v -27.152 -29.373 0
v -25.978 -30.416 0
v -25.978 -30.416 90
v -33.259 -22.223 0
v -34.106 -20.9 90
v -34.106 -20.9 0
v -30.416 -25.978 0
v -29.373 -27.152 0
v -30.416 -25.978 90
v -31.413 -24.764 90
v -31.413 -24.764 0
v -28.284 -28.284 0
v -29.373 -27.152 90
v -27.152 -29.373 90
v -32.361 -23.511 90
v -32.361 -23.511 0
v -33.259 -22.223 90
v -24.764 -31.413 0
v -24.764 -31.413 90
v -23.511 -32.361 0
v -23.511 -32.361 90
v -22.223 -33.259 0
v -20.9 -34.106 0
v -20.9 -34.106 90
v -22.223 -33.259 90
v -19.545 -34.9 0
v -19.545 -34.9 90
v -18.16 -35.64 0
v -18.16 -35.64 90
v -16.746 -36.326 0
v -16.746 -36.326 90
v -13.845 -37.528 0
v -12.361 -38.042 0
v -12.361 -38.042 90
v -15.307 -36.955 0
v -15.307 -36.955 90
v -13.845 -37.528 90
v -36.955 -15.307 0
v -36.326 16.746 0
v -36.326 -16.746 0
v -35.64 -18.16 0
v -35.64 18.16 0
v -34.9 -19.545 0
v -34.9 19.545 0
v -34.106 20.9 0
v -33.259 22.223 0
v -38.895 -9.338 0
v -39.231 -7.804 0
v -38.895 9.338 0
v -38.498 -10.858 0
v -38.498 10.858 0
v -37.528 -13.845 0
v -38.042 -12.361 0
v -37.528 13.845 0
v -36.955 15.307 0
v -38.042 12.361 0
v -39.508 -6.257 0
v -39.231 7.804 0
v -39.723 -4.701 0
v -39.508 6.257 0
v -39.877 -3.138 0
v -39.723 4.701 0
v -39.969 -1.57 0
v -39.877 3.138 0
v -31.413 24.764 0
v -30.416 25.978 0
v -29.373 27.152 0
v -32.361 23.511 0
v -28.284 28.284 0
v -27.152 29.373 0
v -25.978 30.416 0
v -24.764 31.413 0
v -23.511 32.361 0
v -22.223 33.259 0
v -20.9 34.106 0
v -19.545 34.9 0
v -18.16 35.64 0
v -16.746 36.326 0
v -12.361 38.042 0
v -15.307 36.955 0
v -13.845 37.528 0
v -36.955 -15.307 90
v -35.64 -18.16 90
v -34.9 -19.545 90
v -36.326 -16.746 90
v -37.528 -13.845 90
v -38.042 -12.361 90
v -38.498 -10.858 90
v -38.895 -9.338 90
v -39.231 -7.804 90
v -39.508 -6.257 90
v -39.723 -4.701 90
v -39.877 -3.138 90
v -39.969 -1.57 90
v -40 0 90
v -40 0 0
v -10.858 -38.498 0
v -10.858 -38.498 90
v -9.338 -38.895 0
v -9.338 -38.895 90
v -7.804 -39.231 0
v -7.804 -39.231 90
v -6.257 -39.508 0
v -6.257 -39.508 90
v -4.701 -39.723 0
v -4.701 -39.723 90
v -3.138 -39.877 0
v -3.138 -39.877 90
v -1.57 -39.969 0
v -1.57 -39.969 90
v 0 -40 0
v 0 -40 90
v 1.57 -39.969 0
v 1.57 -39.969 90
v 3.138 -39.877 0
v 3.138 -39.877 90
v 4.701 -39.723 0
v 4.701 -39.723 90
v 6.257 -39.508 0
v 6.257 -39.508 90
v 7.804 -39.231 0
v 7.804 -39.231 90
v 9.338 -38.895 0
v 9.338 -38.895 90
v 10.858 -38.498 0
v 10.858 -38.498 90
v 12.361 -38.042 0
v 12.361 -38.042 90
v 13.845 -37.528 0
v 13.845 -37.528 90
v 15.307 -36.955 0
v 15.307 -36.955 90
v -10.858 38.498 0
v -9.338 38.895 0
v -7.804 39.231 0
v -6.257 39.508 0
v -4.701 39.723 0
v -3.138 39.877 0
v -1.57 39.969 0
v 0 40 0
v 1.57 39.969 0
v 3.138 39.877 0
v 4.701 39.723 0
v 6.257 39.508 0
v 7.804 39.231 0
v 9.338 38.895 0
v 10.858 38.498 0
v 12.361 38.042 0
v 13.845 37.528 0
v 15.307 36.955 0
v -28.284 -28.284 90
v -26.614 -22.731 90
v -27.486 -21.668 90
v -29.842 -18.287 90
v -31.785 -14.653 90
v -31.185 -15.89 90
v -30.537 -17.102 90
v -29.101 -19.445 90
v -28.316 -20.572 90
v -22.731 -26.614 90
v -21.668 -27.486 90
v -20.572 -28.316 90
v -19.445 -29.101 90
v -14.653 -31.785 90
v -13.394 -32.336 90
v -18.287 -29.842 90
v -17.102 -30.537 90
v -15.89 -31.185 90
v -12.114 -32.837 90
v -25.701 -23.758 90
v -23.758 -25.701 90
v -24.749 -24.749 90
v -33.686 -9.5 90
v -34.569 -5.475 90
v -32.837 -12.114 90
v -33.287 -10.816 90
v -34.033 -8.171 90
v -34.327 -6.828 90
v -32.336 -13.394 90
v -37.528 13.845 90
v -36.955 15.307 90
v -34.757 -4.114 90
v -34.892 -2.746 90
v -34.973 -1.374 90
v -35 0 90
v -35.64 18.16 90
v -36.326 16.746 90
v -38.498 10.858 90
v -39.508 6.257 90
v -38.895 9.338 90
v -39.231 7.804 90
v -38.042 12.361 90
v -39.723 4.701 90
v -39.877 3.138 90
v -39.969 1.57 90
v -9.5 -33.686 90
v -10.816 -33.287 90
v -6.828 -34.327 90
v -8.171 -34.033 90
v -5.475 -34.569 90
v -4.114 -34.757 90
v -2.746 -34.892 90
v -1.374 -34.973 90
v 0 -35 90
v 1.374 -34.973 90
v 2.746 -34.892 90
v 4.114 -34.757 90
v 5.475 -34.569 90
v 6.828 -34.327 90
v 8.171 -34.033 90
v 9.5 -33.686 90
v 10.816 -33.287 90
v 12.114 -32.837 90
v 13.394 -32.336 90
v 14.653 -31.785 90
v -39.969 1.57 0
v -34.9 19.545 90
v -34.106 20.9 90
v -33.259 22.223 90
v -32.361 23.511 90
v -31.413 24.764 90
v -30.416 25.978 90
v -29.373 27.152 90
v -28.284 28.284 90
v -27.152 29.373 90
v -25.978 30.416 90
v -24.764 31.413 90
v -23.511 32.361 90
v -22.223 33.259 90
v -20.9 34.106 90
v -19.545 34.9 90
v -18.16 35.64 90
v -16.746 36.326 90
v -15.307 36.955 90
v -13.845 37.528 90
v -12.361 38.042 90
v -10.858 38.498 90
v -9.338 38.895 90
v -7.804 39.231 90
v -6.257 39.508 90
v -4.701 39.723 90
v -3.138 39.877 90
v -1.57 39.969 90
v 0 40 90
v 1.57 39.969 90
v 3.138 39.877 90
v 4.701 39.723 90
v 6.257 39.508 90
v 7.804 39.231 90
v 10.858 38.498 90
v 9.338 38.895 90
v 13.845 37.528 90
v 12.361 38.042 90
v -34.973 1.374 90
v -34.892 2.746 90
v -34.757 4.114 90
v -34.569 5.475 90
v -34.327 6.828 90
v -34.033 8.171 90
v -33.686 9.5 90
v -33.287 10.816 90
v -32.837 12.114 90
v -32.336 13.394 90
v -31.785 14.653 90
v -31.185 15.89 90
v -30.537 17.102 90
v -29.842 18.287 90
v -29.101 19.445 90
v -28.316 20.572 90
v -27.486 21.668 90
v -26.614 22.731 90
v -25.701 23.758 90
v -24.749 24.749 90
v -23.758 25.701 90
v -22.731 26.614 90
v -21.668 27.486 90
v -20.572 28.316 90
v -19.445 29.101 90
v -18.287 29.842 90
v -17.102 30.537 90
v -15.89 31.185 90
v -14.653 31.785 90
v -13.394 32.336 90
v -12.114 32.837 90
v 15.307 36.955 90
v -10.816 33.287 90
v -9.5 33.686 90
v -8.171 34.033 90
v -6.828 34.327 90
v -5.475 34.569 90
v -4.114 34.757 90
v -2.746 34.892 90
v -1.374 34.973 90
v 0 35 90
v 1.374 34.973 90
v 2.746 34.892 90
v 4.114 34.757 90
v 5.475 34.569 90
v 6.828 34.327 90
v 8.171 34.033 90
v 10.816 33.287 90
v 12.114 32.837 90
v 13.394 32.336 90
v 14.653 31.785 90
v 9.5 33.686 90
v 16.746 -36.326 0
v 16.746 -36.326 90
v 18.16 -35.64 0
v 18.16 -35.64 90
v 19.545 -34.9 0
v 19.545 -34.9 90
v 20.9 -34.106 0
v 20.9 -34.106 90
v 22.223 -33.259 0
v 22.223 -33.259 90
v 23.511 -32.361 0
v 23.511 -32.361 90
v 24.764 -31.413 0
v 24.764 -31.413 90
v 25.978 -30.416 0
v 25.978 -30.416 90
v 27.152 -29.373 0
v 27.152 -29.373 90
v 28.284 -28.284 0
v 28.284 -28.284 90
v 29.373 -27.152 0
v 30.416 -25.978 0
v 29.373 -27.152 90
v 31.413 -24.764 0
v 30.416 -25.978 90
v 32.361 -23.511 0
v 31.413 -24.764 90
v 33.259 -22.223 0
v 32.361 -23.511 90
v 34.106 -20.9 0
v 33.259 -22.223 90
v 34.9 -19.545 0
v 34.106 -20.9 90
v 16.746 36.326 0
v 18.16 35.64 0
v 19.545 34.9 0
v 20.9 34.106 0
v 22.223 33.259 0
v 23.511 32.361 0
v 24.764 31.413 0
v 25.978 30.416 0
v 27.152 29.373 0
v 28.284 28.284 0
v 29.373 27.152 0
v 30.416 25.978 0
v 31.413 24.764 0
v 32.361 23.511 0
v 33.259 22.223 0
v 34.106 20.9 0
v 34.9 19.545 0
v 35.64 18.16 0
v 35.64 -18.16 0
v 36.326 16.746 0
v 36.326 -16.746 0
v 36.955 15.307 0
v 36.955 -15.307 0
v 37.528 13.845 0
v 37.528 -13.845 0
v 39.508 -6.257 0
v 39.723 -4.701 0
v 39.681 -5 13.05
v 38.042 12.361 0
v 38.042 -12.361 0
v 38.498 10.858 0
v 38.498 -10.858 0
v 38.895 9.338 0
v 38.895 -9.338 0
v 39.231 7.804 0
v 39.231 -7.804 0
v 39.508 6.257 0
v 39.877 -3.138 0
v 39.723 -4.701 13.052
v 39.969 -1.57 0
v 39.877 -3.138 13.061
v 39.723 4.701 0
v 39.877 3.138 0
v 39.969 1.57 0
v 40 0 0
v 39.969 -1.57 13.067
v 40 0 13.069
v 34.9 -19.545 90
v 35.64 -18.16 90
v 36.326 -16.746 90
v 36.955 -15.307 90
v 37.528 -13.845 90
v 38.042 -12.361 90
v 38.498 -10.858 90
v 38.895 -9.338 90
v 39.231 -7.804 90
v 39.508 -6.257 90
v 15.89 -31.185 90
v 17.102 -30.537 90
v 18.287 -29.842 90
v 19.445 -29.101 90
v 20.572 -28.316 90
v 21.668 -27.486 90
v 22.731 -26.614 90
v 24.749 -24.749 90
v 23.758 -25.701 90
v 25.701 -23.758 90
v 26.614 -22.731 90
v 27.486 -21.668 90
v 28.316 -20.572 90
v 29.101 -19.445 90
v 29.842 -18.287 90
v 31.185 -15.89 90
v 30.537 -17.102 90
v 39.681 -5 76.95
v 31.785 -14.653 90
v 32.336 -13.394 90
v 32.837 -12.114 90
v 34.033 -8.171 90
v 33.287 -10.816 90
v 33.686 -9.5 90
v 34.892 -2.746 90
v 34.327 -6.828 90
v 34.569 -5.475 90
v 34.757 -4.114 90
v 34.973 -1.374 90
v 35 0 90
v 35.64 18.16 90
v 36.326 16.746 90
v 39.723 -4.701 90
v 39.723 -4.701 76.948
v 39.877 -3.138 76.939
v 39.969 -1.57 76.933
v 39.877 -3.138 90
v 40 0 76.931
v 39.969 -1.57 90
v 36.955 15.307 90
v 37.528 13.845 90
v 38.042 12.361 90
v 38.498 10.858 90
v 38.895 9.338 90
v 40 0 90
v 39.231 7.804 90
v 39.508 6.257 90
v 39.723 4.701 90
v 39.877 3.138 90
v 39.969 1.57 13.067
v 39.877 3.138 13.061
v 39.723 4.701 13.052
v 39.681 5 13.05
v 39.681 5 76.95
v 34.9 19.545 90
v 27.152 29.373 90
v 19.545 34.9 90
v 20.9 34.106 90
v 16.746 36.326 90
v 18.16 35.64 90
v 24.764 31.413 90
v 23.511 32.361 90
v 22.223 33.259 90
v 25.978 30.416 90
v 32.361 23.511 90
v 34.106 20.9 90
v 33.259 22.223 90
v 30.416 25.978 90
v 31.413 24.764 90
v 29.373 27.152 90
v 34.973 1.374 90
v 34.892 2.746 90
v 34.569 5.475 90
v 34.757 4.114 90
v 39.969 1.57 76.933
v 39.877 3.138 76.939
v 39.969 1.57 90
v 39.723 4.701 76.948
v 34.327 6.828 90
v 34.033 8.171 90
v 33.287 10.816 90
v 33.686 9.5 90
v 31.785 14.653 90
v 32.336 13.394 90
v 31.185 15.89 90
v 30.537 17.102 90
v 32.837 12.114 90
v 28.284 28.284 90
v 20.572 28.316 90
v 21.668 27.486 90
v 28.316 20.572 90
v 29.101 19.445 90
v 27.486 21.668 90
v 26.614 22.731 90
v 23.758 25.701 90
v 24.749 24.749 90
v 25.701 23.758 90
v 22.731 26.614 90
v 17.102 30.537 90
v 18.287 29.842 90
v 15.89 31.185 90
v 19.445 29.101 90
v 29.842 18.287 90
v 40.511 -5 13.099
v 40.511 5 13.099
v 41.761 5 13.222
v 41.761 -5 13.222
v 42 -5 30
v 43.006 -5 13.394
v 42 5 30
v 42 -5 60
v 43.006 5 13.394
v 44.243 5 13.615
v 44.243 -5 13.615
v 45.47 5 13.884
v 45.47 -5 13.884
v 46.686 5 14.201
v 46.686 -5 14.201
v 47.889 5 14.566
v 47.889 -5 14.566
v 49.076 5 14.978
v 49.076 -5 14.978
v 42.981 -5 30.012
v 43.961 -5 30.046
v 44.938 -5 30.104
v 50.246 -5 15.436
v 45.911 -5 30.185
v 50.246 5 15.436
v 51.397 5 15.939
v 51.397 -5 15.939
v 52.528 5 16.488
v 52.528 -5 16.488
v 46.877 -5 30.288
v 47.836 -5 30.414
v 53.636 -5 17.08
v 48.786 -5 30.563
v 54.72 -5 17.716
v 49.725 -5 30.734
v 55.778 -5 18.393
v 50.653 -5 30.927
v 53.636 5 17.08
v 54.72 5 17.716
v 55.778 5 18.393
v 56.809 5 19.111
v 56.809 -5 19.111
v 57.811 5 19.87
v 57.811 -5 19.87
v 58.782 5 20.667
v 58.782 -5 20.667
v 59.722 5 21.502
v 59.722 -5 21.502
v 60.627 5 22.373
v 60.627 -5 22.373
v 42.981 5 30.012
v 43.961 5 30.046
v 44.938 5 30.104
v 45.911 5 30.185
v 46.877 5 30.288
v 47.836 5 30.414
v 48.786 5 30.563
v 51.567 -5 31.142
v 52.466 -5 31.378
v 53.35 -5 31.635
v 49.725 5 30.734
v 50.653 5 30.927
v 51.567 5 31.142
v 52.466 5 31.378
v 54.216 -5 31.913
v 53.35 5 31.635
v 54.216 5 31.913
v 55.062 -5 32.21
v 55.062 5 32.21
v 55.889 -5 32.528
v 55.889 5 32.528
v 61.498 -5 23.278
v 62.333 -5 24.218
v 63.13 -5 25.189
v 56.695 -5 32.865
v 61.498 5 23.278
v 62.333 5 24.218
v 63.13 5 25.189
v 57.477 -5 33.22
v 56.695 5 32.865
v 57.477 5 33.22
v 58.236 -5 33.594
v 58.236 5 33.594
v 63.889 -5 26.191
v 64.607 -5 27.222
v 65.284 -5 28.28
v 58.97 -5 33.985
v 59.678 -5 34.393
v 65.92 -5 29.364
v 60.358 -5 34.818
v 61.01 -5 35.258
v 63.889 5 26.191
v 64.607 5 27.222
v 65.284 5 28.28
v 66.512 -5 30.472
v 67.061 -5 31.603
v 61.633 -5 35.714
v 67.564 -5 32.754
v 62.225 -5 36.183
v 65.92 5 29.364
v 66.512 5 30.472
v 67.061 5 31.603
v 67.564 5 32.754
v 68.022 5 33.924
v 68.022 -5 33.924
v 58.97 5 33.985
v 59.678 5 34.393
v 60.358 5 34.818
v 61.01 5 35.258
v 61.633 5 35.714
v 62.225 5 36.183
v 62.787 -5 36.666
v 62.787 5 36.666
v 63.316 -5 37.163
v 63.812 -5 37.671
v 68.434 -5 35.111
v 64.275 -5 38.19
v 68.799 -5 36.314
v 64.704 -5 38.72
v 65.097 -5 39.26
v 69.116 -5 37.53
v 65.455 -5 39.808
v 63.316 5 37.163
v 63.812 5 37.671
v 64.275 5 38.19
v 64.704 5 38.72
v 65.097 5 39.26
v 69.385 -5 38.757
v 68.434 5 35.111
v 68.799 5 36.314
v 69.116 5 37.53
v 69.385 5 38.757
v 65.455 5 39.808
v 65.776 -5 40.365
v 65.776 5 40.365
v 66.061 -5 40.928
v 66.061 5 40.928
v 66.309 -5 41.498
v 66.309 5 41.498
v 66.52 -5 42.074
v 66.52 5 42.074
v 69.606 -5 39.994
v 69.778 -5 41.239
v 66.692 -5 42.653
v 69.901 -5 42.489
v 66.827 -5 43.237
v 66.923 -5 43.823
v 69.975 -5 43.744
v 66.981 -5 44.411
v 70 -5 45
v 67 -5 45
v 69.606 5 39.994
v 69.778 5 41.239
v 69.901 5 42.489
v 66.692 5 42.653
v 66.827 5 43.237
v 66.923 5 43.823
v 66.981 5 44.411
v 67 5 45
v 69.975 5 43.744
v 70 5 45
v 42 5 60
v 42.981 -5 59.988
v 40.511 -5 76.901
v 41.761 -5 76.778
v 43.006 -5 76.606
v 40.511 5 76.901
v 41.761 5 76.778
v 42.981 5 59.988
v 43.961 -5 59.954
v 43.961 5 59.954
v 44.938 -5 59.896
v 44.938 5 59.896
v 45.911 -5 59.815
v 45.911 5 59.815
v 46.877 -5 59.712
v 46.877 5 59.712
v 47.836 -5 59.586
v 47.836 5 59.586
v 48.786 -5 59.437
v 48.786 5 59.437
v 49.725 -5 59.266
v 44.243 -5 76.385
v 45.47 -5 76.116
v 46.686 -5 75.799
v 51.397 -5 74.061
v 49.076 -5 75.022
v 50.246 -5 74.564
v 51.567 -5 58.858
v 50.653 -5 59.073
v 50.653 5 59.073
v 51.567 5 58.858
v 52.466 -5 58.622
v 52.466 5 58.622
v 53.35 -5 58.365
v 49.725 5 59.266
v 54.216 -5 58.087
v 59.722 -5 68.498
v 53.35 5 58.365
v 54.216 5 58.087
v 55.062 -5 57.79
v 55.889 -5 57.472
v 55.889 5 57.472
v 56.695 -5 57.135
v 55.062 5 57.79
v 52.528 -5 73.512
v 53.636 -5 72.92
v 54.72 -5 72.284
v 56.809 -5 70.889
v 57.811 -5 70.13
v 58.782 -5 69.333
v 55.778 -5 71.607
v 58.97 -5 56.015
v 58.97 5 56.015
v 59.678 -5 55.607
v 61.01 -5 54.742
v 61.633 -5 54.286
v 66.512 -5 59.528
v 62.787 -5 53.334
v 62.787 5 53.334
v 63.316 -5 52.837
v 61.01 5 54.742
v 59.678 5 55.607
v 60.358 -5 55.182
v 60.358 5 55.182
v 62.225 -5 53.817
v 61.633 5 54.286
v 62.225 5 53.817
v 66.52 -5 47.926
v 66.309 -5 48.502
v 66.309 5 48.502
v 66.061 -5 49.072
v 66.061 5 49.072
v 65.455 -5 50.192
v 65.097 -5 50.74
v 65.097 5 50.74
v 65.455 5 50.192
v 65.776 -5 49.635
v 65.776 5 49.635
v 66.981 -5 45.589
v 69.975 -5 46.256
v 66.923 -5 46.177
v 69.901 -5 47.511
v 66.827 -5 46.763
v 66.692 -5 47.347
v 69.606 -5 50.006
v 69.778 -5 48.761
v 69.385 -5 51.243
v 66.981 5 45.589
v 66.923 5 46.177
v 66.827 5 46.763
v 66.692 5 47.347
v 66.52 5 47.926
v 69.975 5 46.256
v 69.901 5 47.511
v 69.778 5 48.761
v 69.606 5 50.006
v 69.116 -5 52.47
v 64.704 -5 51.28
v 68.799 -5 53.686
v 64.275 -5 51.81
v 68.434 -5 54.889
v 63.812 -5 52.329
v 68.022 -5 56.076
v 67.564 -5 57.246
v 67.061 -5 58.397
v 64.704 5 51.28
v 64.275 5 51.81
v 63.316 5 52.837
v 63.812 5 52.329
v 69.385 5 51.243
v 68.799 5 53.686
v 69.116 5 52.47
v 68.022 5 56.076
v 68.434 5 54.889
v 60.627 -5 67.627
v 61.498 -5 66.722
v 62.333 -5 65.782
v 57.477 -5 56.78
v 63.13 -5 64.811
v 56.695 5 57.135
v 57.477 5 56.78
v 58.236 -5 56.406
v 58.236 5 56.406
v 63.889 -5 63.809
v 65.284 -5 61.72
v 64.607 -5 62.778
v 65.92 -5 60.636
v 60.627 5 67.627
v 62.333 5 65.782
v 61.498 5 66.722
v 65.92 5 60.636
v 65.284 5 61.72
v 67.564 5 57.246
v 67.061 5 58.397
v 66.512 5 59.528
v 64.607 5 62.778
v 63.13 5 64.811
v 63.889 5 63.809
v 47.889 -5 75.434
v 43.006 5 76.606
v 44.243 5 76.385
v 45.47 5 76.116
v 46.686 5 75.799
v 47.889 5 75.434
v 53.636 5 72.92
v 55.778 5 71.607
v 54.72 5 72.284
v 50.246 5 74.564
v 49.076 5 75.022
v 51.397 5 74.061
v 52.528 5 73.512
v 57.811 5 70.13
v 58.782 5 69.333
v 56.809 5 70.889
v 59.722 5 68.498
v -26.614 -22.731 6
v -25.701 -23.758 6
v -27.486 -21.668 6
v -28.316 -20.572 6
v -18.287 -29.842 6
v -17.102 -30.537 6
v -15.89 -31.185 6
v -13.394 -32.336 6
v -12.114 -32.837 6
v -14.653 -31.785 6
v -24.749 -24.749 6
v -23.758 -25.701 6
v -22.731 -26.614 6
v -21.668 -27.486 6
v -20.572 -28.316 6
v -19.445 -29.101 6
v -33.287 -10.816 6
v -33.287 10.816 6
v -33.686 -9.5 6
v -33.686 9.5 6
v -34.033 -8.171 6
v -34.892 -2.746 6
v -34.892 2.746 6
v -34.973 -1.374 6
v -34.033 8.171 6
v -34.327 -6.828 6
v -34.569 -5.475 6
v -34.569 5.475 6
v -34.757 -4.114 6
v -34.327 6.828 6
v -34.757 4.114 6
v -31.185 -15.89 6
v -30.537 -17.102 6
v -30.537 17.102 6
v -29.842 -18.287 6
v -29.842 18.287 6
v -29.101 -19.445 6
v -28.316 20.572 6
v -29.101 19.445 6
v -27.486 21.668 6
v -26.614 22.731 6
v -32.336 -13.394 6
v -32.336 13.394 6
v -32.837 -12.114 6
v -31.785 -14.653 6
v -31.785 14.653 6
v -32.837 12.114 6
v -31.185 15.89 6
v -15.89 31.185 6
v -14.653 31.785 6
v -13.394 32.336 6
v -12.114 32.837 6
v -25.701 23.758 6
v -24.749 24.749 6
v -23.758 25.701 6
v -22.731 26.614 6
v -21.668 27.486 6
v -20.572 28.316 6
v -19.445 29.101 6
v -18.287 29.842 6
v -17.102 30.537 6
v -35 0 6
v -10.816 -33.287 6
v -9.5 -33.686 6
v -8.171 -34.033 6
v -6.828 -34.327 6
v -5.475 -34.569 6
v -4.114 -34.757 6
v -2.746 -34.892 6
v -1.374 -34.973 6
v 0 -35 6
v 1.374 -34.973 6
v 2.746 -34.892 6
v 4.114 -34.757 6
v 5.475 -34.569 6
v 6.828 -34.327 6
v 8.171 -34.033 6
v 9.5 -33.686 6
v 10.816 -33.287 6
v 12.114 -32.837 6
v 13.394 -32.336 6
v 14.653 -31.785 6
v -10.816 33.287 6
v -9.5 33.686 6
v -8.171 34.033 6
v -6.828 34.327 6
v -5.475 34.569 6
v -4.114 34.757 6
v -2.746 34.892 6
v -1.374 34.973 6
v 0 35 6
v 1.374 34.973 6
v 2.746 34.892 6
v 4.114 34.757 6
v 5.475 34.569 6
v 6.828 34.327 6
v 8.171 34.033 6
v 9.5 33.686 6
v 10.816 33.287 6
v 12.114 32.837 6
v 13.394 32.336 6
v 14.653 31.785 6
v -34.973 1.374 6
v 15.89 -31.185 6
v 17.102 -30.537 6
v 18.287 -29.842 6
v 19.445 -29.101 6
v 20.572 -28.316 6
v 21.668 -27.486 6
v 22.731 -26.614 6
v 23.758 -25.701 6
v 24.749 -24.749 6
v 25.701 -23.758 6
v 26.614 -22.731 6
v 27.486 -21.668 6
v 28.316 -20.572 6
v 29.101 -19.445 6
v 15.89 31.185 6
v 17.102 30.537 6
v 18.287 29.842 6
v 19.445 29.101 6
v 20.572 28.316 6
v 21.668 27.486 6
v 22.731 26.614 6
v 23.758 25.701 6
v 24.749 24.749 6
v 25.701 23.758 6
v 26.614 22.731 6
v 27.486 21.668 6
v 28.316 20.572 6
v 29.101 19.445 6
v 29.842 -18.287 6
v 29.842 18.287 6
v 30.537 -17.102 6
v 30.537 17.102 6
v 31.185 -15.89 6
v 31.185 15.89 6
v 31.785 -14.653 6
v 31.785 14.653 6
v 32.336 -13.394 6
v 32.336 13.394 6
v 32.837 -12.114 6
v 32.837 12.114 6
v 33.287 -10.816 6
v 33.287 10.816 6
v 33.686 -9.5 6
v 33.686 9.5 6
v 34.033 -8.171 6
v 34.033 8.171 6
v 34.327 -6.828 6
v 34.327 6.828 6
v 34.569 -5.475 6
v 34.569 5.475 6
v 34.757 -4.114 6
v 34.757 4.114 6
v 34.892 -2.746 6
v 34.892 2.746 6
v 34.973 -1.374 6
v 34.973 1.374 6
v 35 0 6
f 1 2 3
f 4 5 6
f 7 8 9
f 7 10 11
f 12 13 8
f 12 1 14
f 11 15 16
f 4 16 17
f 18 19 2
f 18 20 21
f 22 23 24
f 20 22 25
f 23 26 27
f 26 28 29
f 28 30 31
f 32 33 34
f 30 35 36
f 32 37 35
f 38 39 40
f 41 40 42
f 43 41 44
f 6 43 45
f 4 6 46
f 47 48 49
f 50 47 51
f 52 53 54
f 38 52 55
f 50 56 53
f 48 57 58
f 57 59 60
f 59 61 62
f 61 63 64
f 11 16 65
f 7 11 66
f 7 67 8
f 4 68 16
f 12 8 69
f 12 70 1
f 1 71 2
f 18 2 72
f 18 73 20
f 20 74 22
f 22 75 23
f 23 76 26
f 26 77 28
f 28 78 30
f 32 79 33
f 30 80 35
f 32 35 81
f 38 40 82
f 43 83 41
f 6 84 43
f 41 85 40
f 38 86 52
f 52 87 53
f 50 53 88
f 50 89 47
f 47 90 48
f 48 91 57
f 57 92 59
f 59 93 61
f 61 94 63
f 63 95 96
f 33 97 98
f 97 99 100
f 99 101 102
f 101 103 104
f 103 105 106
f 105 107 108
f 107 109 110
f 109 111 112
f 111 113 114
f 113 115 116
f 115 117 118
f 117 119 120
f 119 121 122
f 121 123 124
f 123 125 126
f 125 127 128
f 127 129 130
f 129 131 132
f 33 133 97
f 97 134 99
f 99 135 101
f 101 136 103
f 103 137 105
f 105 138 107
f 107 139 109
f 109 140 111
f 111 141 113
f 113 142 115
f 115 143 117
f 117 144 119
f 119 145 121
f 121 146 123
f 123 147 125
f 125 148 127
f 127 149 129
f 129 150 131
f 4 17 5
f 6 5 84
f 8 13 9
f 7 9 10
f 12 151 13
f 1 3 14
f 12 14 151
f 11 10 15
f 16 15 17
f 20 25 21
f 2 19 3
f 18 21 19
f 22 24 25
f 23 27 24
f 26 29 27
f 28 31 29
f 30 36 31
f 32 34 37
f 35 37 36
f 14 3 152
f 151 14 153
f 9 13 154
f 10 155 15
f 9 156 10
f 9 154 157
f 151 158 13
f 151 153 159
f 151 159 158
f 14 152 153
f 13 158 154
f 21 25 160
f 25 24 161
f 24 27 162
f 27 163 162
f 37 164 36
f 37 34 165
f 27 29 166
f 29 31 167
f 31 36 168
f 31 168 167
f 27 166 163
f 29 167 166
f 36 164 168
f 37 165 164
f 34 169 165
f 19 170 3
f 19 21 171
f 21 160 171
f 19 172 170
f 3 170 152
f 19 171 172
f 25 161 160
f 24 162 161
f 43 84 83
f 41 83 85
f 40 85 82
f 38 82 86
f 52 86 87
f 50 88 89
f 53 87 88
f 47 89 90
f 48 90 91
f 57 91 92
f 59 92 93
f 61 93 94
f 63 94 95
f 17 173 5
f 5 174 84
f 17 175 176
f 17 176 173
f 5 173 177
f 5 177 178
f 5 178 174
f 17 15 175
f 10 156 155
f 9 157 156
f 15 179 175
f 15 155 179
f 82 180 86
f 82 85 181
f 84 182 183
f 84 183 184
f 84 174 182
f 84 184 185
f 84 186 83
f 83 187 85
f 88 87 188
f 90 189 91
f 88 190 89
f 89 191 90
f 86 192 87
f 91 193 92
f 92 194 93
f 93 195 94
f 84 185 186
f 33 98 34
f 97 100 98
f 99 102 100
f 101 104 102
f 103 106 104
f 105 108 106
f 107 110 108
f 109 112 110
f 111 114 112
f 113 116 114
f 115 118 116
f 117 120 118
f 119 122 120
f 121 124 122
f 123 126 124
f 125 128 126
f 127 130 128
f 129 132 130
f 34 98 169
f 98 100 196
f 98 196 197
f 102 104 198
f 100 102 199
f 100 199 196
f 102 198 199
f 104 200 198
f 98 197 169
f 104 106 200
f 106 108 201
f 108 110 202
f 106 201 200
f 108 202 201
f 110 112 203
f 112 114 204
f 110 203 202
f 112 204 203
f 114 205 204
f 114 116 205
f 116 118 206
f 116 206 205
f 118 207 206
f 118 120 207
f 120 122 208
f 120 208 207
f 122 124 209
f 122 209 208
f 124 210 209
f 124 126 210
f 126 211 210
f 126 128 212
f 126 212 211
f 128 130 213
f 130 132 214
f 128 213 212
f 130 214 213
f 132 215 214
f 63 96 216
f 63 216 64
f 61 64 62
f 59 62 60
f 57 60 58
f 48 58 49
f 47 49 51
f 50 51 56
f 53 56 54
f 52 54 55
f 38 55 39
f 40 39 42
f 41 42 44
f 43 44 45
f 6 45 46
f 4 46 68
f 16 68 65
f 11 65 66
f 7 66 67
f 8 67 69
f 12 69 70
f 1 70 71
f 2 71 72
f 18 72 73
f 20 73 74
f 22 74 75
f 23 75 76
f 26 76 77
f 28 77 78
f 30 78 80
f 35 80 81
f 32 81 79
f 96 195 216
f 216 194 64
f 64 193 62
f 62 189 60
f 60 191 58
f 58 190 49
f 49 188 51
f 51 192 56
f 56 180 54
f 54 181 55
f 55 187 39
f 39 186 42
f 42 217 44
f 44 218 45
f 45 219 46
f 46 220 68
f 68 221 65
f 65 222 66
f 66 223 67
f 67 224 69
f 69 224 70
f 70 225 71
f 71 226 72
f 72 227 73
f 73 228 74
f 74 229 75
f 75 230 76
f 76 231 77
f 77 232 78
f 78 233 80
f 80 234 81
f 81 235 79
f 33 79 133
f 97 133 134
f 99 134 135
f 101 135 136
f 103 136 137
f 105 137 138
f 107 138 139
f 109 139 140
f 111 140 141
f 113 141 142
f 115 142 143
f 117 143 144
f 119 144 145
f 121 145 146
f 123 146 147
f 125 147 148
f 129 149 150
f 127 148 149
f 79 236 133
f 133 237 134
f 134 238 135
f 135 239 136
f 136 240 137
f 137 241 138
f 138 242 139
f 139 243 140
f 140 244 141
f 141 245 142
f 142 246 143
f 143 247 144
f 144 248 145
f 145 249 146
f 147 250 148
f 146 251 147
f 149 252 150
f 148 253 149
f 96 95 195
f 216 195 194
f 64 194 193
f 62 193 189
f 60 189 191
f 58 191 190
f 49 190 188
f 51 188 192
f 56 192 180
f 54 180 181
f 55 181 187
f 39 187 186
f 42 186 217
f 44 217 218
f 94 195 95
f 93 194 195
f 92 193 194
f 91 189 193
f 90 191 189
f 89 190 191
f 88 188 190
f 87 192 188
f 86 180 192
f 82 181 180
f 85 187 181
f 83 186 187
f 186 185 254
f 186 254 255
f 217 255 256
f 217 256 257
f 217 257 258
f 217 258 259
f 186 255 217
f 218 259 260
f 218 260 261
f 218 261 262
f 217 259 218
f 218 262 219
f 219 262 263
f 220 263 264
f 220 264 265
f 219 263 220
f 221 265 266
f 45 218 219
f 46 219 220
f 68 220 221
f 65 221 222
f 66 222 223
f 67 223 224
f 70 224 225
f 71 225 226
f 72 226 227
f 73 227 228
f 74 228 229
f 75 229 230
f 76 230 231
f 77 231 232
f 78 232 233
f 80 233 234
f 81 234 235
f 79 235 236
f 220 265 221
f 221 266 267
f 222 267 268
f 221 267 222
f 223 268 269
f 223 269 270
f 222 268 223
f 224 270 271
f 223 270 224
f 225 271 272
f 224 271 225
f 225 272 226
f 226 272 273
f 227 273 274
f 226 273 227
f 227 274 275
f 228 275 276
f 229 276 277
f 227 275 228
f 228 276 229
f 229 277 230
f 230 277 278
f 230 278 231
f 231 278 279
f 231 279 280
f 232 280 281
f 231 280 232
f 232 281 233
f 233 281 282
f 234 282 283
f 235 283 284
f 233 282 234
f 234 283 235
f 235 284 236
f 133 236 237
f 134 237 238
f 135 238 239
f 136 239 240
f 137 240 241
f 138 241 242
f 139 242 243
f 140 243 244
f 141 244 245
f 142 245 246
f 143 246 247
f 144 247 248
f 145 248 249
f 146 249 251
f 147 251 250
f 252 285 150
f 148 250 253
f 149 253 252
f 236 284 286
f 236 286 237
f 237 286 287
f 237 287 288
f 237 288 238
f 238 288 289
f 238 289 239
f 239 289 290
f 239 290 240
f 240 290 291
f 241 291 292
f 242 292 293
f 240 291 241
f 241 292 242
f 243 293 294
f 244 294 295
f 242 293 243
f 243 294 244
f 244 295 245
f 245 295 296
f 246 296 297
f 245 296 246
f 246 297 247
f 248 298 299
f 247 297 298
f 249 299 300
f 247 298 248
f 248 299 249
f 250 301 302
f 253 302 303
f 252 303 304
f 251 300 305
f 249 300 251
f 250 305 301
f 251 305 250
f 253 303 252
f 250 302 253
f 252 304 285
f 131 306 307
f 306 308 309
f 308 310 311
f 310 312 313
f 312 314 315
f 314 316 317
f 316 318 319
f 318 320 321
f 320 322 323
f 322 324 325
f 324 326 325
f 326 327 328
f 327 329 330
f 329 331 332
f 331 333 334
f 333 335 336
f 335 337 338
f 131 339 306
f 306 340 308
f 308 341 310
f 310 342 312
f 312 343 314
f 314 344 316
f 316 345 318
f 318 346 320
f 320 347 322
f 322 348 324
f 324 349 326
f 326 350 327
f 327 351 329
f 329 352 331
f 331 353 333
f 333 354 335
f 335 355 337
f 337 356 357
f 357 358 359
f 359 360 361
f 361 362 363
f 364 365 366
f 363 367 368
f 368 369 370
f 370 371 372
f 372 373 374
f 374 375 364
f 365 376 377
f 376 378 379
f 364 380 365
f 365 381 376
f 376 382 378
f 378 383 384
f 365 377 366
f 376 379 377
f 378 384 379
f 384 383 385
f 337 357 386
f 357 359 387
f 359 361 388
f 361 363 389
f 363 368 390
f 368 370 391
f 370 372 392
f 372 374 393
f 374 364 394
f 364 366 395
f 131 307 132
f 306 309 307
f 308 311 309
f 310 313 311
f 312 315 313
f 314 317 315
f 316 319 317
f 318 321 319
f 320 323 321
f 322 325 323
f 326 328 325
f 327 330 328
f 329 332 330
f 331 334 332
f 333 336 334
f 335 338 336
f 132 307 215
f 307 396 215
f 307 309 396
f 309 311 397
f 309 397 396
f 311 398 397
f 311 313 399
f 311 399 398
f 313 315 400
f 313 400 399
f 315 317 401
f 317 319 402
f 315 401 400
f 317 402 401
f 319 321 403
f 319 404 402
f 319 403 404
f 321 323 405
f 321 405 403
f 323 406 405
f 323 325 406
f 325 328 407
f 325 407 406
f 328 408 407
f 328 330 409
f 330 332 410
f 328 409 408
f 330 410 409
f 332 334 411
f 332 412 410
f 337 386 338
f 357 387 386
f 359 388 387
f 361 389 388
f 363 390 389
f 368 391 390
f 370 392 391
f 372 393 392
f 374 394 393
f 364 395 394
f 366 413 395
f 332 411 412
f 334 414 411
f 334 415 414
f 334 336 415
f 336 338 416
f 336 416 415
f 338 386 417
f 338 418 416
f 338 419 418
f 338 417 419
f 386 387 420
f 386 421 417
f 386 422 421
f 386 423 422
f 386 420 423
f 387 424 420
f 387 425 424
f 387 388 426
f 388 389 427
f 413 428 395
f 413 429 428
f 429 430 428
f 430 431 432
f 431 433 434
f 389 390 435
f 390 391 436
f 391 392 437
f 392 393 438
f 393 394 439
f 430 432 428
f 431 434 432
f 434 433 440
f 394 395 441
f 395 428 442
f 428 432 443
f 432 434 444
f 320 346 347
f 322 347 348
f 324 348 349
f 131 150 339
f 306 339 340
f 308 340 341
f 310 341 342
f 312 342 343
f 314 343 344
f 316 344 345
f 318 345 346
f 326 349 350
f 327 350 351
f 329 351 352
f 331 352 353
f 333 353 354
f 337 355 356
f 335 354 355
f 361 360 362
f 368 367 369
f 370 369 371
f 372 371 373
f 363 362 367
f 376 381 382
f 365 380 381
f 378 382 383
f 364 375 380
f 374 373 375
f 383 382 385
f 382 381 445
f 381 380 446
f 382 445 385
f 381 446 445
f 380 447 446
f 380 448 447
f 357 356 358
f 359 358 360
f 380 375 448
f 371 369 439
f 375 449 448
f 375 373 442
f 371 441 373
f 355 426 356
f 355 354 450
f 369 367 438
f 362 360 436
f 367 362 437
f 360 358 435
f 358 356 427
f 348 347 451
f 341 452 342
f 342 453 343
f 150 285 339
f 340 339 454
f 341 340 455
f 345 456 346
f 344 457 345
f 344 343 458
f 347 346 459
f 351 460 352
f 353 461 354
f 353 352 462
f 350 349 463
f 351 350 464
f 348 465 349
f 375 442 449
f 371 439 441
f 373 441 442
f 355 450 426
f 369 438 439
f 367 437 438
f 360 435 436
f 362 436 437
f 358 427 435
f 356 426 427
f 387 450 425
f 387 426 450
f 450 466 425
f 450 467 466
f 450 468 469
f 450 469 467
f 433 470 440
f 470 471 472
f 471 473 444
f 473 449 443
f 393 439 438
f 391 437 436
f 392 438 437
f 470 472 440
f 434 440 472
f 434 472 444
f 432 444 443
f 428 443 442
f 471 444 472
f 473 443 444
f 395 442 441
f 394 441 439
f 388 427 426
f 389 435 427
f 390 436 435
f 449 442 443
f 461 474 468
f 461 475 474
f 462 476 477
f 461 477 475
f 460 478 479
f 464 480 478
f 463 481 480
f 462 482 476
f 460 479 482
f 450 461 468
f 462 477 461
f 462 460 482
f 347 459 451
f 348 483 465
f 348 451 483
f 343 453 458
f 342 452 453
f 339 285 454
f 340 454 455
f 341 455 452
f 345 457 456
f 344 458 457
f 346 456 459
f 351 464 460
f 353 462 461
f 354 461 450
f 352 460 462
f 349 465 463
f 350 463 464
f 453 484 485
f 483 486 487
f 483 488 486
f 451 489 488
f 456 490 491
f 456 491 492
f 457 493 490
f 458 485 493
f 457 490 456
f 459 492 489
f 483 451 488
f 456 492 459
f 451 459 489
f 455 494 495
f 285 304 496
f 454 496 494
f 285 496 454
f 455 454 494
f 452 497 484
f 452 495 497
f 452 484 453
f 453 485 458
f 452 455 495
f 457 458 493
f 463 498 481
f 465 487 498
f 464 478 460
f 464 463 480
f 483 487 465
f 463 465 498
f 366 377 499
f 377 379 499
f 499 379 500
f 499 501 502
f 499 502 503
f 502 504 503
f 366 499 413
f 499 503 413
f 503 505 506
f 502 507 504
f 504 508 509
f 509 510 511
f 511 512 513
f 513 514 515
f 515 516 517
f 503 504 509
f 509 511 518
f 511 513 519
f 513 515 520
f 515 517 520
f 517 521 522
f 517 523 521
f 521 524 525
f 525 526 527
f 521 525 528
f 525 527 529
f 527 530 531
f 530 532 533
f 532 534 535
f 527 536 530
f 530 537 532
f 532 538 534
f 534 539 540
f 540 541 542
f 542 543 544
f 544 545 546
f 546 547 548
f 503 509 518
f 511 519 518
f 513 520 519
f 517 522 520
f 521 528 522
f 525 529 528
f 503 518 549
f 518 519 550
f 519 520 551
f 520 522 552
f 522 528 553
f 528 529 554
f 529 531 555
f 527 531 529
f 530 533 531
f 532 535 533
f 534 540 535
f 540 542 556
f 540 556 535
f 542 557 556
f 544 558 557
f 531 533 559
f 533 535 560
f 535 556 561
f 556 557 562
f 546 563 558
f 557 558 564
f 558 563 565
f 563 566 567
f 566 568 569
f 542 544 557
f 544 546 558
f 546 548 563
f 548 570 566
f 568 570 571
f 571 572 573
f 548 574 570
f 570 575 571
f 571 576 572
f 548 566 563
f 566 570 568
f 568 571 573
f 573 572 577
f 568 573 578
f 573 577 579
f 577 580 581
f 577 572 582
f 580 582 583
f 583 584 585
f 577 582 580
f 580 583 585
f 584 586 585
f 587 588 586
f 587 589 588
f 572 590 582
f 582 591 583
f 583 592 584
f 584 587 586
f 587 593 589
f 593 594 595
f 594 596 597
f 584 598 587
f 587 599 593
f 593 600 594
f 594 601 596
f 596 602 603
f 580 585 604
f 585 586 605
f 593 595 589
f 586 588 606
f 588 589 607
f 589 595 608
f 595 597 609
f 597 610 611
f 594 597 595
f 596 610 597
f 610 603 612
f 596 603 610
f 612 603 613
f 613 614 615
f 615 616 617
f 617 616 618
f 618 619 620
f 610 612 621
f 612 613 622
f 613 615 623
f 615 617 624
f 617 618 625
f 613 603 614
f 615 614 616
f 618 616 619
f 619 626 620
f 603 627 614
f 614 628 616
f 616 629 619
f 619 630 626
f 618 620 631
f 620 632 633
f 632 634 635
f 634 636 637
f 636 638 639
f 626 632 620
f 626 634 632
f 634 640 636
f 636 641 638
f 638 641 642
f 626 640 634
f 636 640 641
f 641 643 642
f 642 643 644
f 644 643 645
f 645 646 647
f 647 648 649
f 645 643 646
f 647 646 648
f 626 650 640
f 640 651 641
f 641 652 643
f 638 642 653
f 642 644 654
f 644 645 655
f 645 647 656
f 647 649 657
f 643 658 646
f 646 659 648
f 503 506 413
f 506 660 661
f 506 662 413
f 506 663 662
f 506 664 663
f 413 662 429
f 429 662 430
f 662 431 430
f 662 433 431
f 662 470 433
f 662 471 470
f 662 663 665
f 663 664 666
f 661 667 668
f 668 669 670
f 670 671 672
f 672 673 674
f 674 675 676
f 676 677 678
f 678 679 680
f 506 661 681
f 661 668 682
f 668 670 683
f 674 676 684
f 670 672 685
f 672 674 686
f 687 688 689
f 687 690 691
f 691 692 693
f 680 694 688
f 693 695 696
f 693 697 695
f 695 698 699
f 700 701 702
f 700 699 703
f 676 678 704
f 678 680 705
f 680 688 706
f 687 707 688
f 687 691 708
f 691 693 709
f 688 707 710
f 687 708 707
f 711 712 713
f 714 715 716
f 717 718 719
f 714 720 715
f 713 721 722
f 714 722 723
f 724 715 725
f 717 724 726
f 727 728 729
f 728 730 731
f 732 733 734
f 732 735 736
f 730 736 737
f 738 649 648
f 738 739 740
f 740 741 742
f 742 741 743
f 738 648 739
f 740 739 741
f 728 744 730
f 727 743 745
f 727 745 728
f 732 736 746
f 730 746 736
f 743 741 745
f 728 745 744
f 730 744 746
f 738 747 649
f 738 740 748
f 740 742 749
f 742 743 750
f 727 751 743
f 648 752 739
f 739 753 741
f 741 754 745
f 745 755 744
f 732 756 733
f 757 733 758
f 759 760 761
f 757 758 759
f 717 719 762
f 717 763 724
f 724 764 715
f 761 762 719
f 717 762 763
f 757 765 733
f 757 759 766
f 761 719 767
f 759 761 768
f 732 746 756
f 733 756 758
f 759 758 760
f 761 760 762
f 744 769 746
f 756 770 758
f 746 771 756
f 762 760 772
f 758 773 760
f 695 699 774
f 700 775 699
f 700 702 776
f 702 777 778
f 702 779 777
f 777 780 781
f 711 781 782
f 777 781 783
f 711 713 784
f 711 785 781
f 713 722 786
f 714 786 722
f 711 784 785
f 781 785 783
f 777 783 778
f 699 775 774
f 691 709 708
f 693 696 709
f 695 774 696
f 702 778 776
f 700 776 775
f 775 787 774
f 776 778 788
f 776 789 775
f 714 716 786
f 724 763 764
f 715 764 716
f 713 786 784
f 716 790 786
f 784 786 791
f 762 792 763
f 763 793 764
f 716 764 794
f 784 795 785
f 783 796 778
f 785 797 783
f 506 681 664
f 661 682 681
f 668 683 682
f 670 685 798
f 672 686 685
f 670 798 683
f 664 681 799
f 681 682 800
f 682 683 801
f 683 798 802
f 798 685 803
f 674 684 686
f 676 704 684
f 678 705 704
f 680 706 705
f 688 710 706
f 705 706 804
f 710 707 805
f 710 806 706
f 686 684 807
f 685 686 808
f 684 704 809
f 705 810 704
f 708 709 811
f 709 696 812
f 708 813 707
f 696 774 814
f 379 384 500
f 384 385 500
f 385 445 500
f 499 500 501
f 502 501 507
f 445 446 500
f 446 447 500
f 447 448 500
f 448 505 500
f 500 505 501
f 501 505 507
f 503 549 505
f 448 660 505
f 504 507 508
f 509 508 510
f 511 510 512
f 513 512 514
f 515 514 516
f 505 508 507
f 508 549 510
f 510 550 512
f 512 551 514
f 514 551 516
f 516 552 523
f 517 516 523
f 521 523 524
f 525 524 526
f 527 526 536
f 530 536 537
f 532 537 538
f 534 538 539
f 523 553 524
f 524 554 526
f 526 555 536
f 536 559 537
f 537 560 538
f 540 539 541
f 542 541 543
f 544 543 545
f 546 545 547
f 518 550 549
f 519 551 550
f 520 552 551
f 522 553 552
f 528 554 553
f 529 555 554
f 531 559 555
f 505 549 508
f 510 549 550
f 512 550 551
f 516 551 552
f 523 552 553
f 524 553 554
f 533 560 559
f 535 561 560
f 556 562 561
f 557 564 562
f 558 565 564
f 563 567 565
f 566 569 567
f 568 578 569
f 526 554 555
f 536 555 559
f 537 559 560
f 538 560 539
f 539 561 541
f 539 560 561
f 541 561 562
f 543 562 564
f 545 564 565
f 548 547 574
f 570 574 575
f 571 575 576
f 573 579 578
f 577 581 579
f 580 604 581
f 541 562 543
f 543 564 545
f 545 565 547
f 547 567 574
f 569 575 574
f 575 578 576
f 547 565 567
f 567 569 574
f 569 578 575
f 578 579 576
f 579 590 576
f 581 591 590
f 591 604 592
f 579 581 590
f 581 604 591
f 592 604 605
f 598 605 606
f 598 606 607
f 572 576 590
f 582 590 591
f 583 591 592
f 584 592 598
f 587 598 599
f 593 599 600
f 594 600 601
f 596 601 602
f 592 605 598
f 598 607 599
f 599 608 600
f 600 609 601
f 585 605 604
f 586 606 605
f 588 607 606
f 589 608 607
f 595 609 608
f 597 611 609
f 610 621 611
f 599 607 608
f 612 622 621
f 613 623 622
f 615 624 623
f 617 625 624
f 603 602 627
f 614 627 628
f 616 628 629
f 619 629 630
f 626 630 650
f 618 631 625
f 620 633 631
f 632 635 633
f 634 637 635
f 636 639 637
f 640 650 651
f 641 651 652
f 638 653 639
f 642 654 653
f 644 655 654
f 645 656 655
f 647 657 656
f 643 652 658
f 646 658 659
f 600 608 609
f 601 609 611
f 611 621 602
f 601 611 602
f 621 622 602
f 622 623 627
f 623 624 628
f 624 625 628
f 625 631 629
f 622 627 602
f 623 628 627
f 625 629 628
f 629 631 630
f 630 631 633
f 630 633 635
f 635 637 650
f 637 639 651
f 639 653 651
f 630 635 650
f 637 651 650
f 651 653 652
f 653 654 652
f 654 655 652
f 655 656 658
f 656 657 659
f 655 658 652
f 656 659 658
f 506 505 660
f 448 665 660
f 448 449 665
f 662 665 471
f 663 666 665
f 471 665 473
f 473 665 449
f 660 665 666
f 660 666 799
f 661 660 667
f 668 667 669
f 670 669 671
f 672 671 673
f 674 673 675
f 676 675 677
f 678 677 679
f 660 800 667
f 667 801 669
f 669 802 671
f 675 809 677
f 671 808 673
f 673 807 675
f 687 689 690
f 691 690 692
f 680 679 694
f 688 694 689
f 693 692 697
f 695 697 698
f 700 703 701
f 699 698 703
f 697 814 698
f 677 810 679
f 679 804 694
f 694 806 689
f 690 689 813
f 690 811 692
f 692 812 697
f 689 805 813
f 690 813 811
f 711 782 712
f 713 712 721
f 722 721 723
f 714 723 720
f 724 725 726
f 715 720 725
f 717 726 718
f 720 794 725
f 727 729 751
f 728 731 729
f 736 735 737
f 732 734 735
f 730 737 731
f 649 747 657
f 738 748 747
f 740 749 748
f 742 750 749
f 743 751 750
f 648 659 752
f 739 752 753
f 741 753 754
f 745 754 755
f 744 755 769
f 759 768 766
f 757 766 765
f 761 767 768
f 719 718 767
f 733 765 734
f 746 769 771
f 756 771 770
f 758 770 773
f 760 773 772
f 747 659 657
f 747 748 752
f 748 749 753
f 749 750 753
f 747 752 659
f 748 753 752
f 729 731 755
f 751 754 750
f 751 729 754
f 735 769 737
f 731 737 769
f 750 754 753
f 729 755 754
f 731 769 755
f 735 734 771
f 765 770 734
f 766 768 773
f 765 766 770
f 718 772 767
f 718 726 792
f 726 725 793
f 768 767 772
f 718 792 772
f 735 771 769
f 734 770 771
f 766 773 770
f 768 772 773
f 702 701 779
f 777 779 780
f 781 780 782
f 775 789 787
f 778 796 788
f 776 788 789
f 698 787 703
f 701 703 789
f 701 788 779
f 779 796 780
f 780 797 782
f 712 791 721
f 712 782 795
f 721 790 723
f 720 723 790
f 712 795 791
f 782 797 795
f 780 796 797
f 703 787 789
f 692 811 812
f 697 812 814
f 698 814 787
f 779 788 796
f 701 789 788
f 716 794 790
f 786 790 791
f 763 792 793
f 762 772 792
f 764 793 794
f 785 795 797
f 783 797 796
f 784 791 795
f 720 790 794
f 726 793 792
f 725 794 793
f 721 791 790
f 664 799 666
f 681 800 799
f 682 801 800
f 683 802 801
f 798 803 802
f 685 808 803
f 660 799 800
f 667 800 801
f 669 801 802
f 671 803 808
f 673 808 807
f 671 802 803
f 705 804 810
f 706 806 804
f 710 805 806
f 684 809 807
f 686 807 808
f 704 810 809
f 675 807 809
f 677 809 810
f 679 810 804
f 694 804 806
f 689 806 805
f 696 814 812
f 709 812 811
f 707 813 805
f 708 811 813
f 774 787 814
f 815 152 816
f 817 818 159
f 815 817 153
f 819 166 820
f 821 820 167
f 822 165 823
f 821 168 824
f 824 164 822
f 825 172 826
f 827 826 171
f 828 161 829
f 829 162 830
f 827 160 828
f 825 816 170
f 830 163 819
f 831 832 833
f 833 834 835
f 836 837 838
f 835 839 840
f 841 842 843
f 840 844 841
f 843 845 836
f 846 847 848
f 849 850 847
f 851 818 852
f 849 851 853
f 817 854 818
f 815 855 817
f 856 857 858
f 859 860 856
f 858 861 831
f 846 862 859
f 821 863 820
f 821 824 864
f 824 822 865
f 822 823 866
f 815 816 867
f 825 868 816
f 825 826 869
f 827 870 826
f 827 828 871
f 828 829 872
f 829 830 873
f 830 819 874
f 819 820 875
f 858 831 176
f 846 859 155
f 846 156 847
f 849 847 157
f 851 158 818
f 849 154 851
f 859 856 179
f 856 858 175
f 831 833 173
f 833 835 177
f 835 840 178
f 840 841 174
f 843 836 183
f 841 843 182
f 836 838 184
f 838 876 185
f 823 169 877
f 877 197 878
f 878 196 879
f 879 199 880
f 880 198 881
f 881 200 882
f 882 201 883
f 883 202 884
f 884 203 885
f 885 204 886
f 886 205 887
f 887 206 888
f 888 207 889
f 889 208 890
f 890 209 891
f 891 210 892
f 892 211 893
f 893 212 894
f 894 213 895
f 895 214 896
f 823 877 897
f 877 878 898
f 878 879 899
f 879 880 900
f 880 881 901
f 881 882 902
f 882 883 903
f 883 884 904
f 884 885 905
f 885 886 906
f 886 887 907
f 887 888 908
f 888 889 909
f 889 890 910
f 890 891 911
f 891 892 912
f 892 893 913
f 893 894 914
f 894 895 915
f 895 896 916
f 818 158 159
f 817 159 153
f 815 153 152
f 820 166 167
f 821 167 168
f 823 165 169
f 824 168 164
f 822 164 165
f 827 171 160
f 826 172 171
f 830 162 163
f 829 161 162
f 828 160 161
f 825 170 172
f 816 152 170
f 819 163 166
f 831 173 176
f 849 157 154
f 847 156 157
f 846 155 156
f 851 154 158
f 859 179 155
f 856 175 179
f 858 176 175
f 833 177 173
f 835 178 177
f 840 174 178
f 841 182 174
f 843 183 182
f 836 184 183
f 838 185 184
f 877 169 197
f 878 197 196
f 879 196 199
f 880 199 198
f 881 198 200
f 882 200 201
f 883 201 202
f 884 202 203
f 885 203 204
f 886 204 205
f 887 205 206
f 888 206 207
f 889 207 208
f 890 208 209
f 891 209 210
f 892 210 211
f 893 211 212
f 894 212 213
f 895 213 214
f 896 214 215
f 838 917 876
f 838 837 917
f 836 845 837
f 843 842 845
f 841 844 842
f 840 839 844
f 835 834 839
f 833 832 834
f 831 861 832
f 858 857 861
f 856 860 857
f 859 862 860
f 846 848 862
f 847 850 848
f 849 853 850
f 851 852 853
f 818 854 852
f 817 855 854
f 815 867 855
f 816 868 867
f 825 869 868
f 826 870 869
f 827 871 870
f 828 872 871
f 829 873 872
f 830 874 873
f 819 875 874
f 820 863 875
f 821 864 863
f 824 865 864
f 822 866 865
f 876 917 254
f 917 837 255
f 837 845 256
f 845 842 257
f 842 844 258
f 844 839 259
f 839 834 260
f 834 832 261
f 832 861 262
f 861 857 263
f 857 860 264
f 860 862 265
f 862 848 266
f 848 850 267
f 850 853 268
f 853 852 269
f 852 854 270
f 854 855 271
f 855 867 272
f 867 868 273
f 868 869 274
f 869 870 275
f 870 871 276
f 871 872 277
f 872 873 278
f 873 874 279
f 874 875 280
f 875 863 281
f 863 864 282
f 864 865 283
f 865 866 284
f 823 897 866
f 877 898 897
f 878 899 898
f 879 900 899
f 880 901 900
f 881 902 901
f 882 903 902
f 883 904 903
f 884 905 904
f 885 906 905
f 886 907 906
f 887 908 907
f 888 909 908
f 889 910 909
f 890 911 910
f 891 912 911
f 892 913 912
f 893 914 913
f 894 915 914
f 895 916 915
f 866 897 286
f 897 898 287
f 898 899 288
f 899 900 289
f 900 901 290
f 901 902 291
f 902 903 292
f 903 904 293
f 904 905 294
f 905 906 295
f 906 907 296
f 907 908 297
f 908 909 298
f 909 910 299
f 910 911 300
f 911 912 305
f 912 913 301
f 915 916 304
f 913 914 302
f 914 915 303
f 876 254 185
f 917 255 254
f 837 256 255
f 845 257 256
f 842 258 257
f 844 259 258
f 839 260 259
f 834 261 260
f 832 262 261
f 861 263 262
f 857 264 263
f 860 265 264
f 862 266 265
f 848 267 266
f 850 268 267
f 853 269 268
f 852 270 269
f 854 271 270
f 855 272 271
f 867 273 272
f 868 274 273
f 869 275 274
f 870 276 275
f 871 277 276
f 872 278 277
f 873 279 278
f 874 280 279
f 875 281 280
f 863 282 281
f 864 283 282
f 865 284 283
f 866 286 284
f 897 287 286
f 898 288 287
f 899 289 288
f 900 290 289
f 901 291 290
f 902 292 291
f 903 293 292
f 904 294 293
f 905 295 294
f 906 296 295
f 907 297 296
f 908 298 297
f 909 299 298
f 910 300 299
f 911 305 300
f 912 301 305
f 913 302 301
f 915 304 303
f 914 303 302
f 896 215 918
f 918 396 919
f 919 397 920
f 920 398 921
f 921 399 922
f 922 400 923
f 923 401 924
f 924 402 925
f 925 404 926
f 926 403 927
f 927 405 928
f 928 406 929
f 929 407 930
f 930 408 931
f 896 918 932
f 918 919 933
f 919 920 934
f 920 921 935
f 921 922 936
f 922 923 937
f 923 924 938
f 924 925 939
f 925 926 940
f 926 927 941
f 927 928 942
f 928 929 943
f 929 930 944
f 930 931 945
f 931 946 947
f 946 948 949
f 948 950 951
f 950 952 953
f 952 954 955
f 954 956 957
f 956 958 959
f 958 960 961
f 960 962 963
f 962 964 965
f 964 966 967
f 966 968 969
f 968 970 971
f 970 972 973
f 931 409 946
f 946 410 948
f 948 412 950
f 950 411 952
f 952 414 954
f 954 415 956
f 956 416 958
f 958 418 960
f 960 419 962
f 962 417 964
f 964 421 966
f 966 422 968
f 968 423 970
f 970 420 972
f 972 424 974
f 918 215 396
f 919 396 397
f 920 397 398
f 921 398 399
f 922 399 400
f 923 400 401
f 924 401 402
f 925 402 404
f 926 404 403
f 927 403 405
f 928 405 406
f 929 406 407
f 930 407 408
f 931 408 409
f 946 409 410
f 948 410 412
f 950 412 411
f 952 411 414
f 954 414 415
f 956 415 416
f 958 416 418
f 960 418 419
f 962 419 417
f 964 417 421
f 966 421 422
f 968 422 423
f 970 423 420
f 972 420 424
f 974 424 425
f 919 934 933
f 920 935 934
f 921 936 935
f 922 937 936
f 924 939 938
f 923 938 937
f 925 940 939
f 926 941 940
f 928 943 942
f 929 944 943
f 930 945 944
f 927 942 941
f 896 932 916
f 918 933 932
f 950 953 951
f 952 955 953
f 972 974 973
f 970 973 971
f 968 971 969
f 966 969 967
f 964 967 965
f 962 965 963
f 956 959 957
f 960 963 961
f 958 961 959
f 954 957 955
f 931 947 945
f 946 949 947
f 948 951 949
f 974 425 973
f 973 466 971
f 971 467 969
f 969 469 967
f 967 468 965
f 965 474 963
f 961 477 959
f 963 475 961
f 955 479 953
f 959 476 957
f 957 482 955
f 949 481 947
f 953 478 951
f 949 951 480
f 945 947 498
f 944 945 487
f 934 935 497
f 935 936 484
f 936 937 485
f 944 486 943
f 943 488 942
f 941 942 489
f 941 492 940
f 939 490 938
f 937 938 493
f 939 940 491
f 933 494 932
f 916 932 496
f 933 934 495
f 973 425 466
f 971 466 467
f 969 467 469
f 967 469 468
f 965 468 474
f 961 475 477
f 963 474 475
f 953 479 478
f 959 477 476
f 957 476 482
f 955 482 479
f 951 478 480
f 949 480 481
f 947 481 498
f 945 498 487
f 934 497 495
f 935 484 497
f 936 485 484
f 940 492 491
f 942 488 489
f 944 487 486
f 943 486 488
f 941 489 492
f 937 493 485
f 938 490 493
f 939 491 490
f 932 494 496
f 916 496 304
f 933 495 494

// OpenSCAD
$fn = 160;

// 単位: mm
outer_diameter = 80;
inner_diameter = 70;
mug_height = 90;
bottom_thickness = 6;

handle_opening_height = 30;
handle_opening_width = 25;
handle_depth = 10;

handle_outer_radius = 32;
handle_back_x = outer_diameter / 2 - 2;  // 本体へ2mm食い込ませる
handle_inner_offset = 4;
handle_center_z = mug_height / 2;

epsilon = 0.1;

// +X側を向く半円。直線部分は x=0。
module half_circle_2d(radius) {
    intersection() {
        circle(r = radius);
        translate([0, -radius])
            square([radius, 2 * radius]);
    }
}

// 外側は半円、内側の開口は幅25mm・高さ30mmのD字形。
module handle_profile_2d() {
    difference() {
        half_circle_2d(handle_outer_radius);

        translate([handle_inner_offset, 0])
            scale([
                handle_opening_width,
                handle_opening_height / 2
            ])
                half_circle_2d(1);
    }
}

// XZ平面に配置し、Y方向に厚みを付ける。
module handle() {
    translate([handle_back_x, 0, handle_center_z])
        rotate([90, 0, 0])
            linear_extrude(height = handle_depth, center = true)
                handle_profile_2d();
}

render(convexity = 10)
difference() {
    union() {
        cylinder(d = outer_diameter, h = mug_height);
        handle();
    }

    // 上面まで貫通する空洞。底は6mm残す。
    translate([0, 0, bottom_thickness])
        cylinder(
            d = inner_diameter,
            h = mug_height - bottom_thickness + epsilon
        );
}
